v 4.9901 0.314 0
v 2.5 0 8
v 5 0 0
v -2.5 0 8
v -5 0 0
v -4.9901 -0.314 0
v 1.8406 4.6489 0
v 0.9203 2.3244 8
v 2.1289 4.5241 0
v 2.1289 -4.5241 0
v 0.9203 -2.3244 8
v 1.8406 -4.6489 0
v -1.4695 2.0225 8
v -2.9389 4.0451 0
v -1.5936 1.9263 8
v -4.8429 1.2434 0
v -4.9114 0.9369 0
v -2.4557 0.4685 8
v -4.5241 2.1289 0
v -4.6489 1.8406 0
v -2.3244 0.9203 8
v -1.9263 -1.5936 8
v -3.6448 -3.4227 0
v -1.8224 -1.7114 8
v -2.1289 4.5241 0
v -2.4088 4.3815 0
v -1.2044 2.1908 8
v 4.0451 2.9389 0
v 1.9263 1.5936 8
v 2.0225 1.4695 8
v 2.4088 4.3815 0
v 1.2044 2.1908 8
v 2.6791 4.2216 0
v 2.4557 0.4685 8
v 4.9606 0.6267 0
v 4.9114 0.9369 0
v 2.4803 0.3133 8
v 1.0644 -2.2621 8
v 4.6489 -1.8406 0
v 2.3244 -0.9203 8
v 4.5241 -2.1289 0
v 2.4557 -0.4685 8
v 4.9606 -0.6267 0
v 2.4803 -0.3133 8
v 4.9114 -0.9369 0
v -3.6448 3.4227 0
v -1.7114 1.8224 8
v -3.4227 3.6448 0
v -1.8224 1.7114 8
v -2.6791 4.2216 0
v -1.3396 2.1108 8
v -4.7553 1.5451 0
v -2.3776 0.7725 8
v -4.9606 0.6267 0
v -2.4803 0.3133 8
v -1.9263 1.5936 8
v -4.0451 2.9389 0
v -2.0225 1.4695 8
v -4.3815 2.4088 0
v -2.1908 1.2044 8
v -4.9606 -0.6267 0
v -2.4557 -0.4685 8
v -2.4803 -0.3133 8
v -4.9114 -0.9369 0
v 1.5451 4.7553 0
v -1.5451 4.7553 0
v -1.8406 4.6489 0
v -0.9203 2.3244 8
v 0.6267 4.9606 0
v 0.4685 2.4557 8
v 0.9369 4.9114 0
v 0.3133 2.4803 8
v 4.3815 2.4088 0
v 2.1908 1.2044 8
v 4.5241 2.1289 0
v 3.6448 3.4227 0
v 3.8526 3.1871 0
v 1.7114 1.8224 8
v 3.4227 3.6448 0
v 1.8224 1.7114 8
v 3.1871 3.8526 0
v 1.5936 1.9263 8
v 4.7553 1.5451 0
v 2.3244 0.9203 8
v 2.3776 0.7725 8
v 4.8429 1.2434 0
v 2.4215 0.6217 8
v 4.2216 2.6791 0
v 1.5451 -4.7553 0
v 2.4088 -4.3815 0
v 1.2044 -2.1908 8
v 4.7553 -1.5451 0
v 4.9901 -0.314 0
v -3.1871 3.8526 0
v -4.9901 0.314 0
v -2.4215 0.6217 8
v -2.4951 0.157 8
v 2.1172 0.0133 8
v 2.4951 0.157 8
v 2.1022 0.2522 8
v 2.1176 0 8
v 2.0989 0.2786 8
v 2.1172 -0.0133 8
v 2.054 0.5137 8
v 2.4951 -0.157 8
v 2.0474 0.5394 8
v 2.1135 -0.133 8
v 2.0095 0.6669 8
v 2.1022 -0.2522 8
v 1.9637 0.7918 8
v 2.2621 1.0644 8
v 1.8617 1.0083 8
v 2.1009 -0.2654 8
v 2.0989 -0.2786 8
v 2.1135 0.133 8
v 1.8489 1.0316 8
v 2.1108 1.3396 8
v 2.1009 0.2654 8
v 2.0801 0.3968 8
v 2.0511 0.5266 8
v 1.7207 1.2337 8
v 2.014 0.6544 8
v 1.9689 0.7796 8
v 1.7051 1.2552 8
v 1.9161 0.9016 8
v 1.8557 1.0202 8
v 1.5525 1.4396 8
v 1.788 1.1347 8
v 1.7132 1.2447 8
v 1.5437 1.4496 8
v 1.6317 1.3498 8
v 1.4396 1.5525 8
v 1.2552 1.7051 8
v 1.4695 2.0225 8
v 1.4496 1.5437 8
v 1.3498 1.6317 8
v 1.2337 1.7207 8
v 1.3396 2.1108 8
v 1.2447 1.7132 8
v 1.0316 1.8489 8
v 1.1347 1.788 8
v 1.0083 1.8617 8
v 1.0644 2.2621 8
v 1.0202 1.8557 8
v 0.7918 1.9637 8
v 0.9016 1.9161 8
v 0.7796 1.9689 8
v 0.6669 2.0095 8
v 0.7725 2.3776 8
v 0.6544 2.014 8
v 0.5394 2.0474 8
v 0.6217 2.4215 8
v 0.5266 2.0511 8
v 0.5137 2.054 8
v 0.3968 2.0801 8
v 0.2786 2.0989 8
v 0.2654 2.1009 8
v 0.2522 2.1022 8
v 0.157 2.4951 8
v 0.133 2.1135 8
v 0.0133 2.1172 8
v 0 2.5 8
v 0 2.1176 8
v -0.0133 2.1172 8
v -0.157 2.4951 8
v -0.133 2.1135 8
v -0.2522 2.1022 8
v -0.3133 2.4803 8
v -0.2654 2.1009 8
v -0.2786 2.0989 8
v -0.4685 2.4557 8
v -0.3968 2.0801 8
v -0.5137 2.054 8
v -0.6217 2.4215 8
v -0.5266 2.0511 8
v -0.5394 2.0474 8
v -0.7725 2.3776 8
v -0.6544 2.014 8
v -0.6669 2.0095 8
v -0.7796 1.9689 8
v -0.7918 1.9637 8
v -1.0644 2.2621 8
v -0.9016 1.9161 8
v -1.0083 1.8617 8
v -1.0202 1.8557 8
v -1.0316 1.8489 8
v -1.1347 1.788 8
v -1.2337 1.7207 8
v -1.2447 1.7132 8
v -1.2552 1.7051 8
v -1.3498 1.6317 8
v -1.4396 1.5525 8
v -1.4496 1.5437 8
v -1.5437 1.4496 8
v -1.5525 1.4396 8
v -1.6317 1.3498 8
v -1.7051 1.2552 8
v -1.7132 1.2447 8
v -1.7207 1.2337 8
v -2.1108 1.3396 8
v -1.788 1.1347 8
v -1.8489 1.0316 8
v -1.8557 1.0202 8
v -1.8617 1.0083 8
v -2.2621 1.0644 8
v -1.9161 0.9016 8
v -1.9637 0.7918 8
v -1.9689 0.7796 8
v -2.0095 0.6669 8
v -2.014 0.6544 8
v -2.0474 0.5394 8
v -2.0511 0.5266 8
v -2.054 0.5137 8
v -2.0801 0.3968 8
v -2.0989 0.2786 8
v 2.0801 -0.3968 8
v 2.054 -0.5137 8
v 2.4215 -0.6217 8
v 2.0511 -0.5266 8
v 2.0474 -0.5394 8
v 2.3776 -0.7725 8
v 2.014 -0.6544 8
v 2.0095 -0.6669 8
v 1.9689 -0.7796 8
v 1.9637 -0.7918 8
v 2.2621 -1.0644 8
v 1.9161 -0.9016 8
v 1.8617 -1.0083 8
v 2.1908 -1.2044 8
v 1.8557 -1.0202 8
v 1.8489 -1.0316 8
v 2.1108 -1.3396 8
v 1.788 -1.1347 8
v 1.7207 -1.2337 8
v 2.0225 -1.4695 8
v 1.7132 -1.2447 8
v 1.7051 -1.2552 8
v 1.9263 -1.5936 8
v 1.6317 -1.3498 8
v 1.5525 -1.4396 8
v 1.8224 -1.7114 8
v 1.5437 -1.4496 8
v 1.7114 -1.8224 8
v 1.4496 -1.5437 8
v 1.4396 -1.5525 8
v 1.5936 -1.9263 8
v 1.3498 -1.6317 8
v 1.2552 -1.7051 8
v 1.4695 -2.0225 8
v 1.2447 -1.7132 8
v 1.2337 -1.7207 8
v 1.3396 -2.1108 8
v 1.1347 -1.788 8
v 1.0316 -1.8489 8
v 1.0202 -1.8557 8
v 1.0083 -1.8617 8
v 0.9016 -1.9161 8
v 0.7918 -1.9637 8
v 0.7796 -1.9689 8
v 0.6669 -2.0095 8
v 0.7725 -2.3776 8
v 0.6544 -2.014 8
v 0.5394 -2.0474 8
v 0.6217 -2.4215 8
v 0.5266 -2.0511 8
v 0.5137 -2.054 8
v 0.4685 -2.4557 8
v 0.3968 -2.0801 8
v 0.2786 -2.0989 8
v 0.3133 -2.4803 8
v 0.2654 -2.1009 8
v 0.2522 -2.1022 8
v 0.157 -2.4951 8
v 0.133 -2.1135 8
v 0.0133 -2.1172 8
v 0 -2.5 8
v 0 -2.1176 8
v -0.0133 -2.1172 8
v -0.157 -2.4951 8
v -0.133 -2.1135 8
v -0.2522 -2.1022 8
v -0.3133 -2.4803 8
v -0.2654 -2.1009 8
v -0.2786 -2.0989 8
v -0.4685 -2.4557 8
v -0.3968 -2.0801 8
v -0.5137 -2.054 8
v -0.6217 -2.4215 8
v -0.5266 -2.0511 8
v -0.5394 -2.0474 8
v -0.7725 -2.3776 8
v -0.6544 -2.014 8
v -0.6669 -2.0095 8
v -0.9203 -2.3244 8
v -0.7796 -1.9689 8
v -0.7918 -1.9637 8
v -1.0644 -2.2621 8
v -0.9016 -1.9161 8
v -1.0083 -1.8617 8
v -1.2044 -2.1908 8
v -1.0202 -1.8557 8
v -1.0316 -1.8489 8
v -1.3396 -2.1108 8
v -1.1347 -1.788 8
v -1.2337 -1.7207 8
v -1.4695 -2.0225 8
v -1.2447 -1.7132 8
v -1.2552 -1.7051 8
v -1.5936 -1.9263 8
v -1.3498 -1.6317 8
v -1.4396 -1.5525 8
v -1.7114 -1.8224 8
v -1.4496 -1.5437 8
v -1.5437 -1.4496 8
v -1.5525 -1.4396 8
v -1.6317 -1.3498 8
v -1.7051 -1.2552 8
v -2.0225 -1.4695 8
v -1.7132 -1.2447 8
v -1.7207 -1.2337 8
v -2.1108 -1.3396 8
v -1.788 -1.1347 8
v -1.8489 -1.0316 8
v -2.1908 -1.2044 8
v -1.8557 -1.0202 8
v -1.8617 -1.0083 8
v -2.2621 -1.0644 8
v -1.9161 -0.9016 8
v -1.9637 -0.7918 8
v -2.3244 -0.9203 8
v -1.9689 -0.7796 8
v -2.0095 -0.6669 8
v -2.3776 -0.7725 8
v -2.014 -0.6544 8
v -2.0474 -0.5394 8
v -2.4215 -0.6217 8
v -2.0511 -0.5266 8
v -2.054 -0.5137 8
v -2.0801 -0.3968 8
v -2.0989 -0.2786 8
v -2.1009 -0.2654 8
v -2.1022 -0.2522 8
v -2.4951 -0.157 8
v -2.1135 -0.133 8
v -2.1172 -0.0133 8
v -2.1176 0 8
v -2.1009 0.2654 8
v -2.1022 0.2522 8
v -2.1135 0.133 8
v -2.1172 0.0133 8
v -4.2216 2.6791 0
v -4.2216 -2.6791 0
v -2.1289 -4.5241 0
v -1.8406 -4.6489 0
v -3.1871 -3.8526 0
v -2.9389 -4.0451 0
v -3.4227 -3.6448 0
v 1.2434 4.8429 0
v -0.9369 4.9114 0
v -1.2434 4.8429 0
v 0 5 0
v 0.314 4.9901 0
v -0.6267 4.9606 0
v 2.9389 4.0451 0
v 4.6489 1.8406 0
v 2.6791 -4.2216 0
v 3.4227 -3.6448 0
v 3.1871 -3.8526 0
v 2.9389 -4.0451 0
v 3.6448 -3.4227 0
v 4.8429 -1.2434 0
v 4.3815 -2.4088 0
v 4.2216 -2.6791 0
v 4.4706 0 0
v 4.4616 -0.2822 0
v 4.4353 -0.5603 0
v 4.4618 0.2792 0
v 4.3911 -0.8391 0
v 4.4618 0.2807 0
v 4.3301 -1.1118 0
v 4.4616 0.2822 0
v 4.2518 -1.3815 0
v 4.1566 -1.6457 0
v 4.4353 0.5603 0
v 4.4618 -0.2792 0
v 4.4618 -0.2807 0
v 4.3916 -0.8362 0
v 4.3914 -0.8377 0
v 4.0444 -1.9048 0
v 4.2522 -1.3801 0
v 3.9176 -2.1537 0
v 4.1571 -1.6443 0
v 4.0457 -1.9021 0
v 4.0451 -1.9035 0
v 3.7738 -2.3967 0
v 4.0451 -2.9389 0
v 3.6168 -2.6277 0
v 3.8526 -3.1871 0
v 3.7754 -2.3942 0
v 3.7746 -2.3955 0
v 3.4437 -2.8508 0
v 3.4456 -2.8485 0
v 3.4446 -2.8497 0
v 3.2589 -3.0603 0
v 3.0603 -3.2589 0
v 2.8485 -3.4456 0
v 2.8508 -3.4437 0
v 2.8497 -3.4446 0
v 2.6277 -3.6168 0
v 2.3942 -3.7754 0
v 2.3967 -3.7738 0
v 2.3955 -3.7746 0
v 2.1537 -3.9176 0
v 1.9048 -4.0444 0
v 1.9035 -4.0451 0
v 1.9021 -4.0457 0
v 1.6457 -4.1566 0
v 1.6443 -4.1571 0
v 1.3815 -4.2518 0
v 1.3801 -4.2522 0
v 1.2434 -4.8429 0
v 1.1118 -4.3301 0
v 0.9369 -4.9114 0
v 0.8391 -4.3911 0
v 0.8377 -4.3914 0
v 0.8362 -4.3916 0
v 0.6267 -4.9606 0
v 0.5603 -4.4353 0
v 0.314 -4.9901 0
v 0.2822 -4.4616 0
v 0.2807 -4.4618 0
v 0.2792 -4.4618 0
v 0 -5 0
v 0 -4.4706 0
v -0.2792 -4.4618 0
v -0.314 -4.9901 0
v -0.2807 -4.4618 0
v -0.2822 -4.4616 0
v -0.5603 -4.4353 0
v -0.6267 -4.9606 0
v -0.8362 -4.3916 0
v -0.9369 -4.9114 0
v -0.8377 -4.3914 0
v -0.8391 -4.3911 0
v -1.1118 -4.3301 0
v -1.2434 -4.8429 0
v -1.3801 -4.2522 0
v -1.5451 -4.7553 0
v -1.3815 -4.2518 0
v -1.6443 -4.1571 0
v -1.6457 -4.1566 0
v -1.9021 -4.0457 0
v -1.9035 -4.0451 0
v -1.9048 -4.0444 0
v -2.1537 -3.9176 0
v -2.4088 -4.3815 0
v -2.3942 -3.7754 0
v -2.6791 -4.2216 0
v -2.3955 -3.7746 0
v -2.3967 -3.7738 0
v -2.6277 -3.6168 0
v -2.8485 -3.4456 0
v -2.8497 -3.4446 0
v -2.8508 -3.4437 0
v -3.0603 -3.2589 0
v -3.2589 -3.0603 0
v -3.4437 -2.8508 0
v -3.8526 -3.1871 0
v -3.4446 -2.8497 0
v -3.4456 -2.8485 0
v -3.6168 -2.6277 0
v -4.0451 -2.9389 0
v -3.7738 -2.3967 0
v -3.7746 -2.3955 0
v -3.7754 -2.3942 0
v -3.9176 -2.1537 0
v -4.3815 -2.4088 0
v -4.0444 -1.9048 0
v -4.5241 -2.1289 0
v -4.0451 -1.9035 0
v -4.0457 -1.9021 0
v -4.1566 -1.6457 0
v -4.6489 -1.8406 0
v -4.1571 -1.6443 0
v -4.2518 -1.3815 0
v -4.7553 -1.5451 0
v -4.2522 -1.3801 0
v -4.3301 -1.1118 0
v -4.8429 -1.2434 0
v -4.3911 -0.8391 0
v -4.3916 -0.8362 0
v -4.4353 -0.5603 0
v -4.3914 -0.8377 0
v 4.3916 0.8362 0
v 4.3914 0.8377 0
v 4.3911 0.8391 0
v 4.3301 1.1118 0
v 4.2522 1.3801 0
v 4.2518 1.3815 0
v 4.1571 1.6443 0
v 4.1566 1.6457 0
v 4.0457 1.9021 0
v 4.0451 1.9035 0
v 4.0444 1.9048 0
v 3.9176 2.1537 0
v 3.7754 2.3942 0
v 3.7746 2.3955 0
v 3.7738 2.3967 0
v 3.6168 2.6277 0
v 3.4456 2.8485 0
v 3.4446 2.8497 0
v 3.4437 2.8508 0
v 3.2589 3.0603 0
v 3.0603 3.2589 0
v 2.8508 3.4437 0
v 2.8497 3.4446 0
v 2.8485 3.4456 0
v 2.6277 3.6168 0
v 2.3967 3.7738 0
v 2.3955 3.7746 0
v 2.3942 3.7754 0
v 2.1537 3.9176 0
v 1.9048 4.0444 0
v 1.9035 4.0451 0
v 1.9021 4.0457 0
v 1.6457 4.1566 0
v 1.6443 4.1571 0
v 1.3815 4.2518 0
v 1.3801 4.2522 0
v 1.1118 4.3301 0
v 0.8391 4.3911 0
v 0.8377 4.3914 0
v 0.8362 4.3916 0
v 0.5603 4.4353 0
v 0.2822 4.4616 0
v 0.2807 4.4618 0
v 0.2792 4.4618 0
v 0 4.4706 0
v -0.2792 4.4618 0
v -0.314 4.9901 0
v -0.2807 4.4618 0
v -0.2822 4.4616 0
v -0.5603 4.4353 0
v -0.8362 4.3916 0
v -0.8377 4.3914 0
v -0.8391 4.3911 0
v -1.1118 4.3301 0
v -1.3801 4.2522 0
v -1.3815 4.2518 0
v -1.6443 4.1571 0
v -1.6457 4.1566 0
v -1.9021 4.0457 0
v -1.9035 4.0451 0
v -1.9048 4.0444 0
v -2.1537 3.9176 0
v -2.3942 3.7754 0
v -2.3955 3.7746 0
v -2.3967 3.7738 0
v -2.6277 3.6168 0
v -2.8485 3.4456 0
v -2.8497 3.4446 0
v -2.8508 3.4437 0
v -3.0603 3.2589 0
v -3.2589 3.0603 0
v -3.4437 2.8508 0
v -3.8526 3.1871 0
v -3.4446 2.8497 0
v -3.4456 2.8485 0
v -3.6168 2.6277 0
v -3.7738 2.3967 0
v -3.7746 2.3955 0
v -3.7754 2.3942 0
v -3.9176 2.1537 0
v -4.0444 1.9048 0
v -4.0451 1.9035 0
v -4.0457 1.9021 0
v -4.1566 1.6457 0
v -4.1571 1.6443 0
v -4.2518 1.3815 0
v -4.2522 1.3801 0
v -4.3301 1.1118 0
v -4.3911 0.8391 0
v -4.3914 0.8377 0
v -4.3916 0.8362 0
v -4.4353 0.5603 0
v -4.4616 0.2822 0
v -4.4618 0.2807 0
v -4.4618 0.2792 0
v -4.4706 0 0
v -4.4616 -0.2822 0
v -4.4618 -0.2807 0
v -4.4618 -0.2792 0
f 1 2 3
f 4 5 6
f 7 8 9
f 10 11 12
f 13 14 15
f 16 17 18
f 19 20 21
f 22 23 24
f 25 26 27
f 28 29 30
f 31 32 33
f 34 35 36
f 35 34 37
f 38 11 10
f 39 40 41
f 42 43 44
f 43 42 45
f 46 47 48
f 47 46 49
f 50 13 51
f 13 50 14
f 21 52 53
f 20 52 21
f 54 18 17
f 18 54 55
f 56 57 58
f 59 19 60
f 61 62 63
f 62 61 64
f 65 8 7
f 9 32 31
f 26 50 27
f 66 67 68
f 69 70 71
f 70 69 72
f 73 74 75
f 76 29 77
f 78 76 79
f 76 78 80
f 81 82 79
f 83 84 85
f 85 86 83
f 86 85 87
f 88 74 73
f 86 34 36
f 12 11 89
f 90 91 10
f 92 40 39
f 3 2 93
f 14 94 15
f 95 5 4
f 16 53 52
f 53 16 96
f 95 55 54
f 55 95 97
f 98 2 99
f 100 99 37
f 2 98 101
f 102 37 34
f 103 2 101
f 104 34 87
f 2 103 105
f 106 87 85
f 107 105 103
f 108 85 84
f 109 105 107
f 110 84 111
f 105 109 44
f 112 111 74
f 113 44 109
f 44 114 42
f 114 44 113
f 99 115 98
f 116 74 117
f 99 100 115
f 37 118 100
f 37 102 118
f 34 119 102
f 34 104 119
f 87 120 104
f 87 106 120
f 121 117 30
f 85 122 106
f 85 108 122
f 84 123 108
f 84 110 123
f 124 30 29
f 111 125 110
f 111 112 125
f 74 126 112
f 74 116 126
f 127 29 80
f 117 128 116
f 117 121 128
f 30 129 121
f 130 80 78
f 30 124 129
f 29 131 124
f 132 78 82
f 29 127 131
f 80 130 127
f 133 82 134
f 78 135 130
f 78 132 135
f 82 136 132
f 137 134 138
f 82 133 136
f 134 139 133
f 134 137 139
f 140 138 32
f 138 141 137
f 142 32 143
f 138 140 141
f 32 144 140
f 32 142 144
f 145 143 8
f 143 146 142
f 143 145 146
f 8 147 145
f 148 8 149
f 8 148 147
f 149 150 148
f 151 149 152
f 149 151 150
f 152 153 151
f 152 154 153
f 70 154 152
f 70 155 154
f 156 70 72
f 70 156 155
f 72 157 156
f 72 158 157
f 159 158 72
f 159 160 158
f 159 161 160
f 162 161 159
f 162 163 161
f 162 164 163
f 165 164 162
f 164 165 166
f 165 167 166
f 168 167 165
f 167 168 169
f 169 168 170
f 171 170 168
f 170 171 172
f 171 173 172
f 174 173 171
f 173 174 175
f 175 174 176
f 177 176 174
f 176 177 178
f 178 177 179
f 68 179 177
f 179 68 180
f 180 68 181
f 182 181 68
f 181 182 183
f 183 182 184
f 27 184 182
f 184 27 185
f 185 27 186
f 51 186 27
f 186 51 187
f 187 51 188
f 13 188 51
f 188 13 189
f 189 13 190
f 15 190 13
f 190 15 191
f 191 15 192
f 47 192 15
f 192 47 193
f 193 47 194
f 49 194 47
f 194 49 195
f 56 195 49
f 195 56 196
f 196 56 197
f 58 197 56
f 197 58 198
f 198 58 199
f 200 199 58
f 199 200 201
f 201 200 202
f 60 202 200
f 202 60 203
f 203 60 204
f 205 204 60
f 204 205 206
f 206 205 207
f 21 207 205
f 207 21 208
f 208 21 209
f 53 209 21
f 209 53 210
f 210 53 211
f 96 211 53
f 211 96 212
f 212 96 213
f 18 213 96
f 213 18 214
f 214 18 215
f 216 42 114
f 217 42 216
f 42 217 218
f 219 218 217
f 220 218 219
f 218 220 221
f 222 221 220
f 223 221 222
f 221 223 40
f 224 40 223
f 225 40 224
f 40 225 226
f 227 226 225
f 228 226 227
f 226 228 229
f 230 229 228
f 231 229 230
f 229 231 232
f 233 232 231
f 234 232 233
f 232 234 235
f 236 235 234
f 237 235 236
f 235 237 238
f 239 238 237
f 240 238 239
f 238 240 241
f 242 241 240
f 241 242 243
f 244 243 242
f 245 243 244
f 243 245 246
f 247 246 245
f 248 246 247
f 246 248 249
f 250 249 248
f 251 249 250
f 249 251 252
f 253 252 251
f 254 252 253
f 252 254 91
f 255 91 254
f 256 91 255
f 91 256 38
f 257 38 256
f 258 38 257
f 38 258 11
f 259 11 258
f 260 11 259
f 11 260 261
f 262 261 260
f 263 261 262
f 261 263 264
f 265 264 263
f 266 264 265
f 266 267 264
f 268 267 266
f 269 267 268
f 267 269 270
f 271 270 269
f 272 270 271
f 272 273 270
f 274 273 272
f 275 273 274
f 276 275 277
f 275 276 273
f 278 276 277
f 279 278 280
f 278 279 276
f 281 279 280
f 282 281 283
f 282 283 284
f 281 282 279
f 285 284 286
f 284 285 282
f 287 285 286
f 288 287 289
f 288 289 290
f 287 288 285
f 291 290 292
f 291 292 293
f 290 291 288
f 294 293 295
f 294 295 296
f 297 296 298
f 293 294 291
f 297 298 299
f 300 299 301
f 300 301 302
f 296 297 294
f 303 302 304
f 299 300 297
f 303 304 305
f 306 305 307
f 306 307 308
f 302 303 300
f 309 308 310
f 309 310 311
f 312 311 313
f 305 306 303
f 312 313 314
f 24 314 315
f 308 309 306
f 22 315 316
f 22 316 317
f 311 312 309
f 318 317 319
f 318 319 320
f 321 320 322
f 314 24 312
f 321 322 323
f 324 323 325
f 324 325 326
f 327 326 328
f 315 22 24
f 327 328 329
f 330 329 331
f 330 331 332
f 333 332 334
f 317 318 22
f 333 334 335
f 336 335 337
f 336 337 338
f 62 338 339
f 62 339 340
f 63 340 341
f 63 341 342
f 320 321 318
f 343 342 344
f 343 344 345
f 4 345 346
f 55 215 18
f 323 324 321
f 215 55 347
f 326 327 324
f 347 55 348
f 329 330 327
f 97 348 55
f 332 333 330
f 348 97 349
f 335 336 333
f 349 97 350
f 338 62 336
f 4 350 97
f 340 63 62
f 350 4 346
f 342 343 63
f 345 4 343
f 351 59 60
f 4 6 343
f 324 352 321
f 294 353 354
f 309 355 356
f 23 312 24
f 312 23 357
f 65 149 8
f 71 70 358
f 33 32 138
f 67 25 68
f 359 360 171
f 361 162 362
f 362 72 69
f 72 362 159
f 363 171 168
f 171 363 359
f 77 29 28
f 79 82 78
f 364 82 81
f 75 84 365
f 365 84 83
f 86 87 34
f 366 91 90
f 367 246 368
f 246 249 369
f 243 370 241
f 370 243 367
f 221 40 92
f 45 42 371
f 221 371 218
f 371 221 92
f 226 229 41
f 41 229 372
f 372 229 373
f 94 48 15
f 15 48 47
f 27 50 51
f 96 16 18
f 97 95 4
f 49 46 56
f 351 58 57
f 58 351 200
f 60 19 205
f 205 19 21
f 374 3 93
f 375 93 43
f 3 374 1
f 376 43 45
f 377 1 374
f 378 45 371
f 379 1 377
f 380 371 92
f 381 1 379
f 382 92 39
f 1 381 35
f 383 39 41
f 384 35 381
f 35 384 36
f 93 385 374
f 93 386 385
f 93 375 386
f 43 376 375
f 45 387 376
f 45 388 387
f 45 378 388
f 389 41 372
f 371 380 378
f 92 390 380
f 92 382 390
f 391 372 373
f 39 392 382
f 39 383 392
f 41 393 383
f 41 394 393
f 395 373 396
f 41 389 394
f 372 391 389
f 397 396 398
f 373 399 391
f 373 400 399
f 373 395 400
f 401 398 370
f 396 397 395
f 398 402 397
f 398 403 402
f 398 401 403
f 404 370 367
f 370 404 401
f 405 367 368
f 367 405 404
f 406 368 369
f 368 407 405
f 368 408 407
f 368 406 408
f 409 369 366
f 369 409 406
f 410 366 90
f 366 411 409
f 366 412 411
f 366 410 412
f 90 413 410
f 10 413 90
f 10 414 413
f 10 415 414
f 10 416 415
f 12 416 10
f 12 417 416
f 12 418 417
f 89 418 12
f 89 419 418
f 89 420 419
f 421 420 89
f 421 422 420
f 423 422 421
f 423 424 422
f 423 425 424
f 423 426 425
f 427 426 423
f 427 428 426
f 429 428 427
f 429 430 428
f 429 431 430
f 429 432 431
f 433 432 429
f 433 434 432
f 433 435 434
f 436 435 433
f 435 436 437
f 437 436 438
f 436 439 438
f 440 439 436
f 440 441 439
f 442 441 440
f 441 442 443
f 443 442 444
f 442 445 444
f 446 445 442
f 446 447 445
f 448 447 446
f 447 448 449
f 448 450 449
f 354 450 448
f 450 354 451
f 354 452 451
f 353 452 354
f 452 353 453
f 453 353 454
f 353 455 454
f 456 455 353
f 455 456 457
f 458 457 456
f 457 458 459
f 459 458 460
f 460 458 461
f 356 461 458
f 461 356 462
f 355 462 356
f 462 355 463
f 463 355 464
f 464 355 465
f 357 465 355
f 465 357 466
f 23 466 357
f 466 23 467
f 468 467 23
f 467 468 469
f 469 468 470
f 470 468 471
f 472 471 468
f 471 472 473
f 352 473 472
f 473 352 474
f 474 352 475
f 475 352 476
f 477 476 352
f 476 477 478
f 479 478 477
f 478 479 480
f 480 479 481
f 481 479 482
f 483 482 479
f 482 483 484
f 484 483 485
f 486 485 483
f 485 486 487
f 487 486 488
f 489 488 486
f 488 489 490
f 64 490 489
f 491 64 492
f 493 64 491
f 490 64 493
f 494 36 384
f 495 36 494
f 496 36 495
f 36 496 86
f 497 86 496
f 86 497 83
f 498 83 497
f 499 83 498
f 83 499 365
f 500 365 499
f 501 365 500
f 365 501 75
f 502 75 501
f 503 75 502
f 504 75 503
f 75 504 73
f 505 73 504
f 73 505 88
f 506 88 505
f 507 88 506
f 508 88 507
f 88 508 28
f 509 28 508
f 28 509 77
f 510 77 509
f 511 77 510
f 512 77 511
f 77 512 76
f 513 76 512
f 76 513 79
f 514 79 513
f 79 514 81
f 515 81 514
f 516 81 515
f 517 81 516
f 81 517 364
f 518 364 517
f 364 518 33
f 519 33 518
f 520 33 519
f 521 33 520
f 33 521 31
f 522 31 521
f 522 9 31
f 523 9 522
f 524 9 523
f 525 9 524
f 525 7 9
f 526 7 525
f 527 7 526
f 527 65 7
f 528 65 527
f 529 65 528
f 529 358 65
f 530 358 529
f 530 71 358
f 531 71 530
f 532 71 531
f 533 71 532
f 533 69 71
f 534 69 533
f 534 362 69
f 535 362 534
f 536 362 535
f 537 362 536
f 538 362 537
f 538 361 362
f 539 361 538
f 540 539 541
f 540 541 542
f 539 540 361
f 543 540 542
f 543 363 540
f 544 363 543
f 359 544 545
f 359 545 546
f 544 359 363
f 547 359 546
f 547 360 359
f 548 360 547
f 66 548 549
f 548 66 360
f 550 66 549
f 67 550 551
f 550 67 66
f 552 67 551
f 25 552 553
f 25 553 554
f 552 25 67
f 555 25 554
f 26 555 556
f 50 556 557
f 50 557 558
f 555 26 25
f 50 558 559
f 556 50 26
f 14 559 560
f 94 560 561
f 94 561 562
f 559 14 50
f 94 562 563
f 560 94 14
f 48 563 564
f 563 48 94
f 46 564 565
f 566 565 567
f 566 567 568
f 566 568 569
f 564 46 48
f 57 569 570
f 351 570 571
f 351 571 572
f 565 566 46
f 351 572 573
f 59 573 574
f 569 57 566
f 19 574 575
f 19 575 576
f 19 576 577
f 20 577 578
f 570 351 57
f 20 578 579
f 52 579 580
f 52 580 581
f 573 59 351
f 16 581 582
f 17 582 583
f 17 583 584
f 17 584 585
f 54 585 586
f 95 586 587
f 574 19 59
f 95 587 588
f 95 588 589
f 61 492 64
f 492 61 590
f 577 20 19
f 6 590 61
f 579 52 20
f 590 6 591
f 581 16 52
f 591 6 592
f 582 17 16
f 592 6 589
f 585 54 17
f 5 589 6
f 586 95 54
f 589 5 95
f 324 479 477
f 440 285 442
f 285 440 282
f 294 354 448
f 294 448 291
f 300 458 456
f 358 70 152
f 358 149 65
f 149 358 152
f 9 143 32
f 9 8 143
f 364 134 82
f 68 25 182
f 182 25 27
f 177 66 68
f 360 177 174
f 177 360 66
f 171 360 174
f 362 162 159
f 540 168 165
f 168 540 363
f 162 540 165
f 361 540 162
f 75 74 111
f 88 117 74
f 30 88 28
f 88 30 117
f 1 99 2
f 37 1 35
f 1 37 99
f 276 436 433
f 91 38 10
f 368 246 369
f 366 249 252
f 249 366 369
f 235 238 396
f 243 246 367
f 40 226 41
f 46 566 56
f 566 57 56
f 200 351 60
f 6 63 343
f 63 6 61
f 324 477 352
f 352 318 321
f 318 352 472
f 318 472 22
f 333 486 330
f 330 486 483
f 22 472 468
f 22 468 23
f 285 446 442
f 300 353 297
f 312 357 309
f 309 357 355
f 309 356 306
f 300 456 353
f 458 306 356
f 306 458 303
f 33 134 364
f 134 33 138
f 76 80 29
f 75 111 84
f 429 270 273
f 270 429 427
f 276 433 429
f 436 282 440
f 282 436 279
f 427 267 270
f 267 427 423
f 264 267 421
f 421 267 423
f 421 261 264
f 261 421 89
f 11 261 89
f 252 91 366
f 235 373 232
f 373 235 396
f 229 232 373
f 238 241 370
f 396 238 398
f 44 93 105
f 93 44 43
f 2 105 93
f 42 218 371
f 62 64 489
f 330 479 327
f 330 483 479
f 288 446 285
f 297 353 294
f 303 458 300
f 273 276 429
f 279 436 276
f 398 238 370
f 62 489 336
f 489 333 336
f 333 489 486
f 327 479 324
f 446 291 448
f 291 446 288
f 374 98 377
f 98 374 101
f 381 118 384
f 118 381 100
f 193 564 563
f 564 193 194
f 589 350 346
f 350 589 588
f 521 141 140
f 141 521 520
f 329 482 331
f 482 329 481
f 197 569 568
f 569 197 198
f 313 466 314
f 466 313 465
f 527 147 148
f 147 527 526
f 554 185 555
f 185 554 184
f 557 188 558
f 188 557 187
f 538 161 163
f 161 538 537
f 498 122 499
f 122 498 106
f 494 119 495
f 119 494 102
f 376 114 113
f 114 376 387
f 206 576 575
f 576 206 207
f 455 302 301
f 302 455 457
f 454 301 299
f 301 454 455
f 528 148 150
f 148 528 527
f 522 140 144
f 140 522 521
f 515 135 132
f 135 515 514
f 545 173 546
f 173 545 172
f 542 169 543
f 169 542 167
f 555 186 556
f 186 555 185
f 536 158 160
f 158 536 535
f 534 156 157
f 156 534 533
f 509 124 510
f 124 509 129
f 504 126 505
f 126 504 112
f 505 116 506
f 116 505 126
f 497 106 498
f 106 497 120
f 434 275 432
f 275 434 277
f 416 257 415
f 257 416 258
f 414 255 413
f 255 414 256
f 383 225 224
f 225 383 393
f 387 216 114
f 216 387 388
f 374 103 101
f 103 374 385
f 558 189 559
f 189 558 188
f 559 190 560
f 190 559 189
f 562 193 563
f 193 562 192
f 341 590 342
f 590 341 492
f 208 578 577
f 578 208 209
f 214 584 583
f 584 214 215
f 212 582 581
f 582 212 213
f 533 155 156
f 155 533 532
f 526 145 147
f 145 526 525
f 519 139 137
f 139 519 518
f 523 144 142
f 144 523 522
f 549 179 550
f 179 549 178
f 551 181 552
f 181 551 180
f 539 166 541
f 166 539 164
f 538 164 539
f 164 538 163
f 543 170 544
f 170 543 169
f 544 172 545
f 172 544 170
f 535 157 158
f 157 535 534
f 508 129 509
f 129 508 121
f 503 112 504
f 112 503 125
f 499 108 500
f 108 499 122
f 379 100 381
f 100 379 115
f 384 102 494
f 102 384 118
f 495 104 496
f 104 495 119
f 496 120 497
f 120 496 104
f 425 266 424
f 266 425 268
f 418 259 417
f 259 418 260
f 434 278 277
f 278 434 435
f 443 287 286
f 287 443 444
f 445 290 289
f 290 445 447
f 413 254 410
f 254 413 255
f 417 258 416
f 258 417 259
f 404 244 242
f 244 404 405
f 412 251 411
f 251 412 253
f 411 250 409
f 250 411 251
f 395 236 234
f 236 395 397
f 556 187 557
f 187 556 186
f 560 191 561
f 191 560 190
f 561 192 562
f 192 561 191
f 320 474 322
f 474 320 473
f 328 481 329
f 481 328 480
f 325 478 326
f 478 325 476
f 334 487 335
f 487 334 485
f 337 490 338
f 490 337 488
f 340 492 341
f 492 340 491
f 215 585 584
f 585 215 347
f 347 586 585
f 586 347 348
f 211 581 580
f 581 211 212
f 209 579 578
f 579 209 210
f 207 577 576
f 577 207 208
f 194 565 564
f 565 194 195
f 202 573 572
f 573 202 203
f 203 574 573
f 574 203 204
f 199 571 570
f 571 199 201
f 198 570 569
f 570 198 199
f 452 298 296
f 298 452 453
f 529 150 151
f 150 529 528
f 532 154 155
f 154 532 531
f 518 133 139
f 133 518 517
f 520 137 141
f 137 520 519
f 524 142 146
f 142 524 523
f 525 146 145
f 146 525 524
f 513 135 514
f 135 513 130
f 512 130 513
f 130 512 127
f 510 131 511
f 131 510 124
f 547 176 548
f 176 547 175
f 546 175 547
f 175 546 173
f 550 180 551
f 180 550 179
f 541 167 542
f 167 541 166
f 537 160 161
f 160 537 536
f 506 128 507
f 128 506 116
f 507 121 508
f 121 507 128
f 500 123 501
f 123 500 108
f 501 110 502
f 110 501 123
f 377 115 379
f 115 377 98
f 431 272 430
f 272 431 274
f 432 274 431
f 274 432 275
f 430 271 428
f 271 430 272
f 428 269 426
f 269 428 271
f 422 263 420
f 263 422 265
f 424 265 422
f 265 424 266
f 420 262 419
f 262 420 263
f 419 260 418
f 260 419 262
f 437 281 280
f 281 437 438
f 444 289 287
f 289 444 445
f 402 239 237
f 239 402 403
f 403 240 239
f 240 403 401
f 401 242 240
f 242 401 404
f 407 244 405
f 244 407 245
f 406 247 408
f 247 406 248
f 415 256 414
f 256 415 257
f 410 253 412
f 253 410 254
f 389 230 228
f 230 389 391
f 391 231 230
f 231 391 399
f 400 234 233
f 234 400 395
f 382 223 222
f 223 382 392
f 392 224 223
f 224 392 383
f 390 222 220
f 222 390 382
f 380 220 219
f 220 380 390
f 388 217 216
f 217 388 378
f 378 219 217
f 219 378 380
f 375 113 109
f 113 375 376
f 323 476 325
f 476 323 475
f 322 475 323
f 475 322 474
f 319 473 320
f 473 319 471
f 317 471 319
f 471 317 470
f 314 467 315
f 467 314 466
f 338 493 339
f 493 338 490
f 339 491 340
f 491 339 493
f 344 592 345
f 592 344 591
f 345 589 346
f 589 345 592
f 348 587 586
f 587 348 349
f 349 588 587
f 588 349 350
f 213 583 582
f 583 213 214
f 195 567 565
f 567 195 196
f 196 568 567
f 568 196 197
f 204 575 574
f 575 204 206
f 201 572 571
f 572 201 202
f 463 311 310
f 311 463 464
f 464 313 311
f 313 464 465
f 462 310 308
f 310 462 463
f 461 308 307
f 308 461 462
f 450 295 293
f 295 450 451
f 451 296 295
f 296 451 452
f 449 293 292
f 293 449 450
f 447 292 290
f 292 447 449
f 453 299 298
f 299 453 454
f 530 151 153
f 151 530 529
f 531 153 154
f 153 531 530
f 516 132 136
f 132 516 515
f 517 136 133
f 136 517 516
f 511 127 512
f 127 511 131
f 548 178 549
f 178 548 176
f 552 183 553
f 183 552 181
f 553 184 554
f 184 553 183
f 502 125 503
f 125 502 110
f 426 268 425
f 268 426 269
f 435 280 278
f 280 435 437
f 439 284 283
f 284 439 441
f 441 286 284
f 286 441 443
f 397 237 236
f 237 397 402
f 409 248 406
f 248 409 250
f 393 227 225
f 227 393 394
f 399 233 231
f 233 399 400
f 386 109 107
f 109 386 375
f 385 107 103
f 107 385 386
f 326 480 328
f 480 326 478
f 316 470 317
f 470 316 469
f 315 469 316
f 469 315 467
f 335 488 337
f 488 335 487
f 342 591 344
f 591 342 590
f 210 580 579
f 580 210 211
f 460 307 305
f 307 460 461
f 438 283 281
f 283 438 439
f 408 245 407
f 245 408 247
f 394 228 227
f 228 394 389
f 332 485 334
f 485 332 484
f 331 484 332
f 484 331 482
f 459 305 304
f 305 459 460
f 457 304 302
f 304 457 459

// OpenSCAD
BASE = 10;
TOP = 5;
HEIGHT = 8;
THICKNESS = 0.5;
EPSILON = 0.1;

$fn = 100;

module shade () {
  difference() {
    cylinder(h=HEIGHT, r1=BASE/2, r2=TOP/2);
    # translate([0, 0, -EPSILON])
        cylinder(h=HEIGHT + THICKNESS, r1=BASE/2-THICKNESS, r2=TOP/2 - THICKNESS);
  }
}

shade();
